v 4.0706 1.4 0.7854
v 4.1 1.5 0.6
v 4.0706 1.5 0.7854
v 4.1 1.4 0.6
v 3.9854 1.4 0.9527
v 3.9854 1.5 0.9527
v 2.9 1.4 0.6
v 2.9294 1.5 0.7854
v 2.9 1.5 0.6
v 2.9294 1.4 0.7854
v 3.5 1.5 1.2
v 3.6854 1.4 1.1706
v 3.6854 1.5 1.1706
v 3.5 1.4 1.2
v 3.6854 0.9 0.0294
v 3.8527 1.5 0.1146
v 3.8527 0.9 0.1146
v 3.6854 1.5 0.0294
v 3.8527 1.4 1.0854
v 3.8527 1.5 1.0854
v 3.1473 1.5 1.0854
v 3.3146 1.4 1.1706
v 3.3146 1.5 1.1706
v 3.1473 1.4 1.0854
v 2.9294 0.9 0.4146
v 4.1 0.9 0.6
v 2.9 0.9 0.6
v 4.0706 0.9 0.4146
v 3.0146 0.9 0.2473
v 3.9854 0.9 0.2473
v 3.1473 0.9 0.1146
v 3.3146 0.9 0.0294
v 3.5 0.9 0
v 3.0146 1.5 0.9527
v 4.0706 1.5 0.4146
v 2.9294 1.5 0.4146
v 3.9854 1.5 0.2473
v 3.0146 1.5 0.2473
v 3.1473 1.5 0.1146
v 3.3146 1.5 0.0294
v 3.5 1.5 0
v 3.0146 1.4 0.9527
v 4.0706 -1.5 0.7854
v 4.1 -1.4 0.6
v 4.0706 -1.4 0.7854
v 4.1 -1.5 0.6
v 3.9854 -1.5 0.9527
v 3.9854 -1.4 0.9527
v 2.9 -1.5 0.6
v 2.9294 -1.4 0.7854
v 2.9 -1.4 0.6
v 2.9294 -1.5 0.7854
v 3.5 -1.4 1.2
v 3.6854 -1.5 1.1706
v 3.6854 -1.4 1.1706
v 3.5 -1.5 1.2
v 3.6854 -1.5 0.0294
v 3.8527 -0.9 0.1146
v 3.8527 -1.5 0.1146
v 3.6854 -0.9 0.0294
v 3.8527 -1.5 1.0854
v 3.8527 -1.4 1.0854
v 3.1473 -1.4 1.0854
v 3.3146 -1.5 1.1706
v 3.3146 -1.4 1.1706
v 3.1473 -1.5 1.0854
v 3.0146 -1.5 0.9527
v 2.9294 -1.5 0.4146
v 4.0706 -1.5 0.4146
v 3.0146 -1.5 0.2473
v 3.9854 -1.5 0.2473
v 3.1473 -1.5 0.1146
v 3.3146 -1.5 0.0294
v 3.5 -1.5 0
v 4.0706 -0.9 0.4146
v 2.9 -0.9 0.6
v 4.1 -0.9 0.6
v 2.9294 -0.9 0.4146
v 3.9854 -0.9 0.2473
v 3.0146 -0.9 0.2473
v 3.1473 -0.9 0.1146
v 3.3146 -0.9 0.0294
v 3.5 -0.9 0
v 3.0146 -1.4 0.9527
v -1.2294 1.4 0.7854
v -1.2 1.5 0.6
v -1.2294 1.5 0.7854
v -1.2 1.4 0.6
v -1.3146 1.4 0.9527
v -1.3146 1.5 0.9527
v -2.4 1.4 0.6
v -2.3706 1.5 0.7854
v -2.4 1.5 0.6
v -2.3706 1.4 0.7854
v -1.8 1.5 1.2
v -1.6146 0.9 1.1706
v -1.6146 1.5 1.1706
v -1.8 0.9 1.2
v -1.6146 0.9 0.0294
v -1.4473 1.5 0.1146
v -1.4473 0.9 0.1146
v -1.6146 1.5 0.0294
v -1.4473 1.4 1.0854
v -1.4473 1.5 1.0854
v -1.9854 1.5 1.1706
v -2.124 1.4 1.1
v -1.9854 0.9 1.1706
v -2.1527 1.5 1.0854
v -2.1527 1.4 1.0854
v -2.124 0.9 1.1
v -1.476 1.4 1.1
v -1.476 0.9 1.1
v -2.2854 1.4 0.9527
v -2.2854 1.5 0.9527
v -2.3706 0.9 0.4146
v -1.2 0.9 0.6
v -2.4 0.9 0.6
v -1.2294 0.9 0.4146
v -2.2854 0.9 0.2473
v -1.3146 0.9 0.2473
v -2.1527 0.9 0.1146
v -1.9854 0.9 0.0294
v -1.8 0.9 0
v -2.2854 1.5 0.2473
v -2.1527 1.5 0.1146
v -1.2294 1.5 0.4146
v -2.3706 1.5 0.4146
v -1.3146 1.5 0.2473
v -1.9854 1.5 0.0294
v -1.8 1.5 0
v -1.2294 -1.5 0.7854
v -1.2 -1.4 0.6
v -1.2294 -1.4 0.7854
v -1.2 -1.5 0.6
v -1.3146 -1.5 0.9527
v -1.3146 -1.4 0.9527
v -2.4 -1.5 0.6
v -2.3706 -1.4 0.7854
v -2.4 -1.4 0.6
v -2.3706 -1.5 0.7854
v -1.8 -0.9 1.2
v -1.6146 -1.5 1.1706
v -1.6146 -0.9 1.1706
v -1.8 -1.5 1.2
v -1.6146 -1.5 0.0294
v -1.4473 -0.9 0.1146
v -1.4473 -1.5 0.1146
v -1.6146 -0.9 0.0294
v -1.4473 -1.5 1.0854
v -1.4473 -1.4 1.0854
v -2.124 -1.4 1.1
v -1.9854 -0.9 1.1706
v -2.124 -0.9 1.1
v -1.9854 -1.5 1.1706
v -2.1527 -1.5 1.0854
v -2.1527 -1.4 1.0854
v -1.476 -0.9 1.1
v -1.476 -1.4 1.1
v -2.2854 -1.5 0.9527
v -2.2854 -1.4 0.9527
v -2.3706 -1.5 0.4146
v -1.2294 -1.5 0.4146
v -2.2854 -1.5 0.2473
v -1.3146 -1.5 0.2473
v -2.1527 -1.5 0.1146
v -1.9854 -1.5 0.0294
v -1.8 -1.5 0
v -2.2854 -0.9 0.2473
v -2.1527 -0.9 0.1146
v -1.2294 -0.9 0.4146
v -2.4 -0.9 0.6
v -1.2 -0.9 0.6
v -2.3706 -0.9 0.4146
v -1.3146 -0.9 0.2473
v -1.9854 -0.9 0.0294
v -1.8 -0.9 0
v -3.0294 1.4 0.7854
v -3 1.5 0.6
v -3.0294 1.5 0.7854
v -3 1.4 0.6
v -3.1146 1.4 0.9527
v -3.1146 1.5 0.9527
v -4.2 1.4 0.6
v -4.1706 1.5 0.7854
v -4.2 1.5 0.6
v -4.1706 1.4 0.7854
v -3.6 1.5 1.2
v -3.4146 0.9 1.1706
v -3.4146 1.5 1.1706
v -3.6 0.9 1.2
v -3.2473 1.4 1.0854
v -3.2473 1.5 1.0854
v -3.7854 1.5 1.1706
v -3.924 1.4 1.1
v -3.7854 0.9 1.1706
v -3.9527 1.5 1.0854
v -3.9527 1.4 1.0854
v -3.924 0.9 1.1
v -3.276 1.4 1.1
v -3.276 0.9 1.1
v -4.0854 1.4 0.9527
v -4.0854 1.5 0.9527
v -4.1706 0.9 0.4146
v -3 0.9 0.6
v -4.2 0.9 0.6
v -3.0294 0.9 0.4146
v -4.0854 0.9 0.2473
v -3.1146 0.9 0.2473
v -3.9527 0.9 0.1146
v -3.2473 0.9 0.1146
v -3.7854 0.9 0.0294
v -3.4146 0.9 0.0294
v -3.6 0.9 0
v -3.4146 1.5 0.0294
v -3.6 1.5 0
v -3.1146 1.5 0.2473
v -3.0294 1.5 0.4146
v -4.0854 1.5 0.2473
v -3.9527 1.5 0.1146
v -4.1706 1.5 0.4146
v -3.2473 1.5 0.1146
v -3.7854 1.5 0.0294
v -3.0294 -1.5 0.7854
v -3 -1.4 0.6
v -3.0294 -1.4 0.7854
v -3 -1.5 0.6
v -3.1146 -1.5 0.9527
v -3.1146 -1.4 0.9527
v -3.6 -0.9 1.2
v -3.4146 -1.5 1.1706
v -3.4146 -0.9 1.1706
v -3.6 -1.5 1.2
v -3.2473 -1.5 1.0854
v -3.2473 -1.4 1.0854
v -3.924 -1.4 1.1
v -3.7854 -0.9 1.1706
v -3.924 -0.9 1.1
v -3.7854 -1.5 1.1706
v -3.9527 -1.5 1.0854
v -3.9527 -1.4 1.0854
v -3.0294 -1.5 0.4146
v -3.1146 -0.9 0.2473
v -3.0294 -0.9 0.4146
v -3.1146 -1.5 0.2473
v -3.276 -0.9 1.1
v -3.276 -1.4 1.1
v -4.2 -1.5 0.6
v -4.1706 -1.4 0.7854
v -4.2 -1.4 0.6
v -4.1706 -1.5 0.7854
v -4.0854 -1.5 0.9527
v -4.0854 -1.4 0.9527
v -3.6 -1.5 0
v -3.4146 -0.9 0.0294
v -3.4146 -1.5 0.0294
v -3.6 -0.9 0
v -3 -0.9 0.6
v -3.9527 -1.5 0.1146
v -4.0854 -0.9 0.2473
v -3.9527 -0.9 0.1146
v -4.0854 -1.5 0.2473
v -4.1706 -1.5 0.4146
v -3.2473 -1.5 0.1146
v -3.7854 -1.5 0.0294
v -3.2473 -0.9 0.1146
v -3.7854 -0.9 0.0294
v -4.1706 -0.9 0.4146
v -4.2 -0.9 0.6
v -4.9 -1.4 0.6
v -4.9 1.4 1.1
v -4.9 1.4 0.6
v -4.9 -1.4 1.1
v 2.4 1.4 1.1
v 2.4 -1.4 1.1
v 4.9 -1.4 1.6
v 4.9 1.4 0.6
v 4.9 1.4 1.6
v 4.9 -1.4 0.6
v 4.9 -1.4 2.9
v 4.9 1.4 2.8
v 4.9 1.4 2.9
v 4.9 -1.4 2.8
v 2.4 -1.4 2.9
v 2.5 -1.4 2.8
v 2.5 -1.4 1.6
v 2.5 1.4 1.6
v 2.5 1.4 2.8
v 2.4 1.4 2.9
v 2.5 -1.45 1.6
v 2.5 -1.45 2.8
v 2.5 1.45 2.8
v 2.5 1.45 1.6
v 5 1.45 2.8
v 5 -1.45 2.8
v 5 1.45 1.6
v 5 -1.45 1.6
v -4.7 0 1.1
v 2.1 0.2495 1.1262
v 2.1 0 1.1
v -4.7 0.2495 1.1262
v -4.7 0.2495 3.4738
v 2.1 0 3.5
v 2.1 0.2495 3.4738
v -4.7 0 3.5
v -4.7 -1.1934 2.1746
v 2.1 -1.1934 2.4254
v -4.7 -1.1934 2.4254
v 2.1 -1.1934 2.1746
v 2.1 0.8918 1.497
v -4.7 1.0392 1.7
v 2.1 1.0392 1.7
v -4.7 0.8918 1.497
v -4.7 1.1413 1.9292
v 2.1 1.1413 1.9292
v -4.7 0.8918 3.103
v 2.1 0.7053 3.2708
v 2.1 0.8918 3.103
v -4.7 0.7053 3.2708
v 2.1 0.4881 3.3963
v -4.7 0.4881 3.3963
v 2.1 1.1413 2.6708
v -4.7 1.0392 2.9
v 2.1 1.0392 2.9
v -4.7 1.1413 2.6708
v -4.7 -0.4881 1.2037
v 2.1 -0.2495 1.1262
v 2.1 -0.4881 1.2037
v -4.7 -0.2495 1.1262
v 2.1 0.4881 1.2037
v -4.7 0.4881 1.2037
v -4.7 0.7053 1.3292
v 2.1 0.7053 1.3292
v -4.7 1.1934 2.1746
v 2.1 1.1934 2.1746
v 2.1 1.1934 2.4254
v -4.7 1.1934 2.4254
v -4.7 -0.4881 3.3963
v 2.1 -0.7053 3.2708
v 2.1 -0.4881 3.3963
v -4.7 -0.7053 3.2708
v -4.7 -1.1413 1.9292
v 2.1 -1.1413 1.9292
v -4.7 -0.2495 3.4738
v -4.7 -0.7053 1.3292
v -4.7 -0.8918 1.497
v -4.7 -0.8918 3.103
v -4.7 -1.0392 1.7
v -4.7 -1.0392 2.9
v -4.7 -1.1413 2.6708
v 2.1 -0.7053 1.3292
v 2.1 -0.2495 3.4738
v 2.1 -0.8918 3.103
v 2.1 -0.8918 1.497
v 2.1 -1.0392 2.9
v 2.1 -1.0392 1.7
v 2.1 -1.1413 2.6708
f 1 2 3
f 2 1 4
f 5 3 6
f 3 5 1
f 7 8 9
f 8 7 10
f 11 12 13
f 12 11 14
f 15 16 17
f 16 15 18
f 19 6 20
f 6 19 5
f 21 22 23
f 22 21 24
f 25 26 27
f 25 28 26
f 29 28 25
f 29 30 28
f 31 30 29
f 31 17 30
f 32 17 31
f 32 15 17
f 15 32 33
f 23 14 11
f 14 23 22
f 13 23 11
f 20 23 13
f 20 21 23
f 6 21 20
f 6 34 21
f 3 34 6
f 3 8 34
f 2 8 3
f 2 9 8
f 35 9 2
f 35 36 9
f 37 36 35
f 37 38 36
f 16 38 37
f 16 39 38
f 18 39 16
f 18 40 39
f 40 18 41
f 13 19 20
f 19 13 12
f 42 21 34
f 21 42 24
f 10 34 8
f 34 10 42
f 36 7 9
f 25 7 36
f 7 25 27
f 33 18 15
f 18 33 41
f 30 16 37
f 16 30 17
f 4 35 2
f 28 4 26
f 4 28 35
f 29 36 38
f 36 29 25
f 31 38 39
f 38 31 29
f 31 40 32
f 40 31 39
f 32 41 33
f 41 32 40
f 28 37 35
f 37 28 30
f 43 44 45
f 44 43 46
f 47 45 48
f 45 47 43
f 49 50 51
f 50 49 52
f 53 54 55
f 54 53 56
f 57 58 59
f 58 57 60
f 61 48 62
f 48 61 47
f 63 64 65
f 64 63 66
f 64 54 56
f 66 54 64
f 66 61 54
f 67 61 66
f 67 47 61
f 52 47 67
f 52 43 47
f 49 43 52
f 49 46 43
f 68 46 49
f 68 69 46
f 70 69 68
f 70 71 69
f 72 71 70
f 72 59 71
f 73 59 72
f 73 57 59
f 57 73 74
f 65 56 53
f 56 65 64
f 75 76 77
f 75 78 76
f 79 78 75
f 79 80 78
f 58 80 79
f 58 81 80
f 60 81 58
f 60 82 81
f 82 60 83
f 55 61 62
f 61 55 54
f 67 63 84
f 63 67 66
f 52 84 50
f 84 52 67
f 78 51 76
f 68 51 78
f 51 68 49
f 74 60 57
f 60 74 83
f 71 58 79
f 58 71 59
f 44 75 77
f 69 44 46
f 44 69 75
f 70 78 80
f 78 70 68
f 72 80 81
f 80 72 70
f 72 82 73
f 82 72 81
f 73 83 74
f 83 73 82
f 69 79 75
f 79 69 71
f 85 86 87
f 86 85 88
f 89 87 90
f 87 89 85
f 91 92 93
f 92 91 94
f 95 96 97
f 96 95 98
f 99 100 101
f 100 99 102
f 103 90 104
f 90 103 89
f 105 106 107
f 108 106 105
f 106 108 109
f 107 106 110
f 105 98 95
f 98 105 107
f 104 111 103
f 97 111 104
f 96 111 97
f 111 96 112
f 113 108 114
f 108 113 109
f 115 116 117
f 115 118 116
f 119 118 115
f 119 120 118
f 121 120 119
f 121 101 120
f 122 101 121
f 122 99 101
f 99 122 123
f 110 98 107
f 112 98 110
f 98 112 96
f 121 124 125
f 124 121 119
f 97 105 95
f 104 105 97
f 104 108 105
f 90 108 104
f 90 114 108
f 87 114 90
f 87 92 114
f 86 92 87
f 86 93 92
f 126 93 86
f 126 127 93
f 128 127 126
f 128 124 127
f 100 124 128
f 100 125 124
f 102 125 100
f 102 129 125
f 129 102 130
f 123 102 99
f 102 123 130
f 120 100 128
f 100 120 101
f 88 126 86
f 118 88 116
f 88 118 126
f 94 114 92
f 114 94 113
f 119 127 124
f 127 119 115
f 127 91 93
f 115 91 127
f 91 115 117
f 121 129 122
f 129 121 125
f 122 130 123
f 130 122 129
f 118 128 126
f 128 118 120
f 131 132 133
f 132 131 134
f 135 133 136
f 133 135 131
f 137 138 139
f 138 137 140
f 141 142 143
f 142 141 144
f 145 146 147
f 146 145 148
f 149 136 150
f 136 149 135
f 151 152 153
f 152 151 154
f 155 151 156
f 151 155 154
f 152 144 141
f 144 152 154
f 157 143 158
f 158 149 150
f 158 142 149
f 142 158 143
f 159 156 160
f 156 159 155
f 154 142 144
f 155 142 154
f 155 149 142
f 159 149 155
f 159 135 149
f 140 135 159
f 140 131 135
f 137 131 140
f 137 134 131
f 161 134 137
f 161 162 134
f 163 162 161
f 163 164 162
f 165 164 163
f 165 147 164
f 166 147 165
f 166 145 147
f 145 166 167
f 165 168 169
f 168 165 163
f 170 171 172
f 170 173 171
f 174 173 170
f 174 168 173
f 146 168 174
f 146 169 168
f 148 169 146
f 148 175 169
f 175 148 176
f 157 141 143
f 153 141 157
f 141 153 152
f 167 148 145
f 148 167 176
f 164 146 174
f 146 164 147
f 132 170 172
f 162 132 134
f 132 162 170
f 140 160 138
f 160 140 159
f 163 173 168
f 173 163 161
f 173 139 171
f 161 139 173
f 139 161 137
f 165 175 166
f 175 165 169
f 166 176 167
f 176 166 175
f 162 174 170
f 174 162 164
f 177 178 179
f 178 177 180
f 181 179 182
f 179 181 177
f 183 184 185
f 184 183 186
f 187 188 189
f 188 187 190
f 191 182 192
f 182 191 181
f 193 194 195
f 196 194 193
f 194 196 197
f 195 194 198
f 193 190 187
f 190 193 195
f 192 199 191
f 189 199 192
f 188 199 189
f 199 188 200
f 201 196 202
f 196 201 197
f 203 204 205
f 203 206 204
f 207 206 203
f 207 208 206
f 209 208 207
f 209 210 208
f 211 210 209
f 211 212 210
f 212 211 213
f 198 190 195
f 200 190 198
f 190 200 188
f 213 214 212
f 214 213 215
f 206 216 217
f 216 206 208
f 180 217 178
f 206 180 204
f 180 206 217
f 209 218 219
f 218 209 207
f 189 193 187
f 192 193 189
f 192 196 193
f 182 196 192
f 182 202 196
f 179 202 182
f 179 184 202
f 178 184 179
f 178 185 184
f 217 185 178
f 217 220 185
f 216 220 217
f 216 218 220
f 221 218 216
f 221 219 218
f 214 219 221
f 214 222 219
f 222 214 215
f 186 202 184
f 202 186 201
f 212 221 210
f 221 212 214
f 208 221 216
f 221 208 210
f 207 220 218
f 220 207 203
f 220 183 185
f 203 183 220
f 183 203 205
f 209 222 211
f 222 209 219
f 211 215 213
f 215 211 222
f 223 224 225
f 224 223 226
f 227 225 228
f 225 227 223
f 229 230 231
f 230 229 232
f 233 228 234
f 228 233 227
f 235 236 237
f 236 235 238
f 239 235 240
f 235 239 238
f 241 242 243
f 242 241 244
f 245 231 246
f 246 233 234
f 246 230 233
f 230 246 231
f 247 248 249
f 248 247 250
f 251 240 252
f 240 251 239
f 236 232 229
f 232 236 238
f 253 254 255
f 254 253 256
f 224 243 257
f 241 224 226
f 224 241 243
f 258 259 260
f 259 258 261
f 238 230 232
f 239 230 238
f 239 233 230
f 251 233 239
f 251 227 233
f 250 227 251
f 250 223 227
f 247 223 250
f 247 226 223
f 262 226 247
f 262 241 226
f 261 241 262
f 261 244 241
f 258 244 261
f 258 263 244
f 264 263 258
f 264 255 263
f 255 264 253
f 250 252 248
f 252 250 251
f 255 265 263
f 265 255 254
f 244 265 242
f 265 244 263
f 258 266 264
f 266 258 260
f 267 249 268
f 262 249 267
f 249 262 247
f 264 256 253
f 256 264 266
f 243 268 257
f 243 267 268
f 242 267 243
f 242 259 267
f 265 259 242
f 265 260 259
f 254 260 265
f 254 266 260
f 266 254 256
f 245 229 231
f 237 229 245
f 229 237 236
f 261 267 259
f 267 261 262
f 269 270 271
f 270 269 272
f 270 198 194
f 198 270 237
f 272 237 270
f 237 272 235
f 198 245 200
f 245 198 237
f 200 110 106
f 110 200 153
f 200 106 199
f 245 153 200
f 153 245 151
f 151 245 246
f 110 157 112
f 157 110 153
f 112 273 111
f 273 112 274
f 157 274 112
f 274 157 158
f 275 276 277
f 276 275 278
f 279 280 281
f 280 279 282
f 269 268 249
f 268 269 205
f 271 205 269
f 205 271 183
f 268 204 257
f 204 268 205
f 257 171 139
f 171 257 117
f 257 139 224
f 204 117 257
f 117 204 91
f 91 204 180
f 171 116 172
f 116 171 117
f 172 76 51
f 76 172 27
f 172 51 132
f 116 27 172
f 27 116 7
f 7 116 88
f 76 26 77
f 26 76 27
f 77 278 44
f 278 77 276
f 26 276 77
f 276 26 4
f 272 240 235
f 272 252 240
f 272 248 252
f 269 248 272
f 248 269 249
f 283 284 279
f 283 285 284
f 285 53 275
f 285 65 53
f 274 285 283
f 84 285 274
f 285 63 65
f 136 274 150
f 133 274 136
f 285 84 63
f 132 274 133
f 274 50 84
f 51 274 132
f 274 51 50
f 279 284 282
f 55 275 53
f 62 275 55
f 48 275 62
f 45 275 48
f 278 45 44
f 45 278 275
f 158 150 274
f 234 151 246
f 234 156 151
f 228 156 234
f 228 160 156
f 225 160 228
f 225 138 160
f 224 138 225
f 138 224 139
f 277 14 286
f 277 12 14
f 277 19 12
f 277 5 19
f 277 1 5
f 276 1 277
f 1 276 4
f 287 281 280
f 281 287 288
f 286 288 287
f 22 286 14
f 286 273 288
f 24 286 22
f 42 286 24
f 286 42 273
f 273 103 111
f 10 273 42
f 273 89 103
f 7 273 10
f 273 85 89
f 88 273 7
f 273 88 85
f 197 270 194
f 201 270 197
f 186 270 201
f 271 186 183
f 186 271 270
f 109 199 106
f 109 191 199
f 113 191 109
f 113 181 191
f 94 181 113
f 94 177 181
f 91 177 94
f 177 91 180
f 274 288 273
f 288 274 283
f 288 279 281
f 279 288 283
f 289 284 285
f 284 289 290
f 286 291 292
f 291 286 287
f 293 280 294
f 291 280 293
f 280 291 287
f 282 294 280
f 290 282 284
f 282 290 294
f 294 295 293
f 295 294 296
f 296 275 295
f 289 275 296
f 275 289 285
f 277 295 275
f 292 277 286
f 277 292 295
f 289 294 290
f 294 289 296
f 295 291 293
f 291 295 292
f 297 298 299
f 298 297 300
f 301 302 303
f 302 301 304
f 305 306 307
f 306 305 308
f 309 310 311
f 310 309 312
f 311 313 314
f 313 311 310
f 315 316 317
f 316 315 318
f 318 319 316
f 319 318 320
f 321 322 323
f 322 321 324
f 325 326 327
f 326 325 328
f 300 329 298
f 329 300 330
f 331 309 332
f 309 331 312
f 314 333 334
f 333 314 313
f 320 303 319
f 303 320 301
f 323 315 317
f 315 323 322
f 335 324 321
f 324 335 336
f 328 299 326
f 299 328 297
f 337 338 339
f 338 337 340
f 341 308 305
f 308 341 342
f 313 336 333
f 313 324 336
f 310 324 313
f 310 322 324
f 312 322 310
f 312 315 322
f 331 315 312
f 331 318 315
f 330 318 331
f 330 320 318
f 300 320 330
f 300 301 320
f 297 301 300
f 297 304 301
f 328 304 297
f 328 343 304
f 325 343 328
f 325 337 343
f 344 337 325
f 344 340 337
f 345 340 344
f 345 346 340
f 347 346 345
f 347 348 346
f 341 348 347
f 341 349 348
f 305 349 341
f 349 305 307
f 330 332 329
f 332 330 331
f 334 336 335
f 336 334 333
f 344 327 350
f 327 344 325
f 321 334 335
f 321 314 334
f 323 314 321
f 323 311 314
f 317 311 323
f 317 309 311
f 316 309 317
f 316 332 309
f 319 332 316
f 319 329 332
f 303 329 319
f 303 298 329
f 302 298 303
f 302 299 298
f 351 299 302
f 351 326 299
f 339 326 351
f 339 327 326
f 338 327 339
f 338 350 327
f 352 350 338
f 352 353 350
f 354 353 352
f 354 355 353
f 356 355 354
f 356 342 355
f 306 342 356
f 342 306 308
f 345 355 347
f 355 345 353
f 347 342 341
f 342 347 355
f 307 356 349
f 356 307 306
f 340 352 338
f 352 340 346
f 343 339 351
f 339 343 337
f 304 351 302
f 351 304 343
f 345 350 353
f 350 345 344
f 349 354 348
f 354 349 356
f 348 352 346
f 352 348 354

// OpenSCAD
// Airport Aviation Fuel Tanker Truck

module aviation_fuel_truck() {
    wheel_r = 0.6;
    wheel_w = 0.6;
    
    chassis_l = 9.8;
    chassis_w = 2.8;
    chassis_h = 0.5;
    
    cab_l = 2.5;
    cab_w = 2.8;
    cab_h = 1.8;
    
    tank_l = 6.8;
    tank_r = 1.2;

    // CHASSIS
    color("darkslategrey")
    translate([0, 0, wheel_r + chassis_h/2])
        cube([chassis_l, chassis_w, chassis_h], center=true);

    // WHEELS
    color("black") {
        // Front
        translate([3.5, 1.5 - wheel_w/2, wheel_r]) 
            rotate([90, 0, 0]) cylinder(h=wheel_w, r=wheel_r, center=true, $fn=20);
        translate([3.5, -1.5 + wheel_w/2, wheel_r]) 
            rotate([90, 0, 0]) cylinder(h=wheel_w, r=wheel_r, center=true, $fn=20);

        // Rear axle 1
        translate([-1.8, 1.5 - wheel_w/2, wheel_r]) 
            rotate([90, 0, 0]) cylinder(h=wheel_w, r=wheel_r, center=true, $fn=20);
        translate([-1.8, -1.5 + wheel_w/2, wheel_r]) 
            rotate([90, 0, 0]) cylinder(h=wheel_w, r=wheel_r, center=true, $fn=20);

        // Rear axle 2
        translate([-3.6, 1.5 - wheel_w/2, wheel_r]) 
            rotate([90, 0, 0]) cylinder(h=wheel_w, r=wheel_r, center=true, $fn=20);
        translate([-3.6, -1.5 + wheel_w/2, wheel_r]) 
            rotate([90, 0, 0]) cylinder(h=wheel_w, r=wheel_r, center=true, $fn=20);
    }

    // CAB
    color("white")
    translate([chassis_l/2 - cab_l/2, 0, wheel_r + chassis_h + cab_h/2])
        cube([cab_l, cab_w, cab_h], center=true);

    // windows
    color("skyblue")
    translate([chassis_l/2 - cab_l/2 + 0.1, 0, wheel_r + chassis_h + cab_h/2 + 0.2])
        cube([cab_l, cab_w + 0.1, cab_h - 0.6], center=true);

    // fuel tank
    color("silver")
    translate([-chassis_l/2 + tank_l/2 + 0.2, 0, wheel_r + chassis_h + tank_r])
        rotate([0, 90, 0])
        cylinder(h=tank_l, r=tank_r, center=true, $fn=30);
}

aviation_fuel_truck();
